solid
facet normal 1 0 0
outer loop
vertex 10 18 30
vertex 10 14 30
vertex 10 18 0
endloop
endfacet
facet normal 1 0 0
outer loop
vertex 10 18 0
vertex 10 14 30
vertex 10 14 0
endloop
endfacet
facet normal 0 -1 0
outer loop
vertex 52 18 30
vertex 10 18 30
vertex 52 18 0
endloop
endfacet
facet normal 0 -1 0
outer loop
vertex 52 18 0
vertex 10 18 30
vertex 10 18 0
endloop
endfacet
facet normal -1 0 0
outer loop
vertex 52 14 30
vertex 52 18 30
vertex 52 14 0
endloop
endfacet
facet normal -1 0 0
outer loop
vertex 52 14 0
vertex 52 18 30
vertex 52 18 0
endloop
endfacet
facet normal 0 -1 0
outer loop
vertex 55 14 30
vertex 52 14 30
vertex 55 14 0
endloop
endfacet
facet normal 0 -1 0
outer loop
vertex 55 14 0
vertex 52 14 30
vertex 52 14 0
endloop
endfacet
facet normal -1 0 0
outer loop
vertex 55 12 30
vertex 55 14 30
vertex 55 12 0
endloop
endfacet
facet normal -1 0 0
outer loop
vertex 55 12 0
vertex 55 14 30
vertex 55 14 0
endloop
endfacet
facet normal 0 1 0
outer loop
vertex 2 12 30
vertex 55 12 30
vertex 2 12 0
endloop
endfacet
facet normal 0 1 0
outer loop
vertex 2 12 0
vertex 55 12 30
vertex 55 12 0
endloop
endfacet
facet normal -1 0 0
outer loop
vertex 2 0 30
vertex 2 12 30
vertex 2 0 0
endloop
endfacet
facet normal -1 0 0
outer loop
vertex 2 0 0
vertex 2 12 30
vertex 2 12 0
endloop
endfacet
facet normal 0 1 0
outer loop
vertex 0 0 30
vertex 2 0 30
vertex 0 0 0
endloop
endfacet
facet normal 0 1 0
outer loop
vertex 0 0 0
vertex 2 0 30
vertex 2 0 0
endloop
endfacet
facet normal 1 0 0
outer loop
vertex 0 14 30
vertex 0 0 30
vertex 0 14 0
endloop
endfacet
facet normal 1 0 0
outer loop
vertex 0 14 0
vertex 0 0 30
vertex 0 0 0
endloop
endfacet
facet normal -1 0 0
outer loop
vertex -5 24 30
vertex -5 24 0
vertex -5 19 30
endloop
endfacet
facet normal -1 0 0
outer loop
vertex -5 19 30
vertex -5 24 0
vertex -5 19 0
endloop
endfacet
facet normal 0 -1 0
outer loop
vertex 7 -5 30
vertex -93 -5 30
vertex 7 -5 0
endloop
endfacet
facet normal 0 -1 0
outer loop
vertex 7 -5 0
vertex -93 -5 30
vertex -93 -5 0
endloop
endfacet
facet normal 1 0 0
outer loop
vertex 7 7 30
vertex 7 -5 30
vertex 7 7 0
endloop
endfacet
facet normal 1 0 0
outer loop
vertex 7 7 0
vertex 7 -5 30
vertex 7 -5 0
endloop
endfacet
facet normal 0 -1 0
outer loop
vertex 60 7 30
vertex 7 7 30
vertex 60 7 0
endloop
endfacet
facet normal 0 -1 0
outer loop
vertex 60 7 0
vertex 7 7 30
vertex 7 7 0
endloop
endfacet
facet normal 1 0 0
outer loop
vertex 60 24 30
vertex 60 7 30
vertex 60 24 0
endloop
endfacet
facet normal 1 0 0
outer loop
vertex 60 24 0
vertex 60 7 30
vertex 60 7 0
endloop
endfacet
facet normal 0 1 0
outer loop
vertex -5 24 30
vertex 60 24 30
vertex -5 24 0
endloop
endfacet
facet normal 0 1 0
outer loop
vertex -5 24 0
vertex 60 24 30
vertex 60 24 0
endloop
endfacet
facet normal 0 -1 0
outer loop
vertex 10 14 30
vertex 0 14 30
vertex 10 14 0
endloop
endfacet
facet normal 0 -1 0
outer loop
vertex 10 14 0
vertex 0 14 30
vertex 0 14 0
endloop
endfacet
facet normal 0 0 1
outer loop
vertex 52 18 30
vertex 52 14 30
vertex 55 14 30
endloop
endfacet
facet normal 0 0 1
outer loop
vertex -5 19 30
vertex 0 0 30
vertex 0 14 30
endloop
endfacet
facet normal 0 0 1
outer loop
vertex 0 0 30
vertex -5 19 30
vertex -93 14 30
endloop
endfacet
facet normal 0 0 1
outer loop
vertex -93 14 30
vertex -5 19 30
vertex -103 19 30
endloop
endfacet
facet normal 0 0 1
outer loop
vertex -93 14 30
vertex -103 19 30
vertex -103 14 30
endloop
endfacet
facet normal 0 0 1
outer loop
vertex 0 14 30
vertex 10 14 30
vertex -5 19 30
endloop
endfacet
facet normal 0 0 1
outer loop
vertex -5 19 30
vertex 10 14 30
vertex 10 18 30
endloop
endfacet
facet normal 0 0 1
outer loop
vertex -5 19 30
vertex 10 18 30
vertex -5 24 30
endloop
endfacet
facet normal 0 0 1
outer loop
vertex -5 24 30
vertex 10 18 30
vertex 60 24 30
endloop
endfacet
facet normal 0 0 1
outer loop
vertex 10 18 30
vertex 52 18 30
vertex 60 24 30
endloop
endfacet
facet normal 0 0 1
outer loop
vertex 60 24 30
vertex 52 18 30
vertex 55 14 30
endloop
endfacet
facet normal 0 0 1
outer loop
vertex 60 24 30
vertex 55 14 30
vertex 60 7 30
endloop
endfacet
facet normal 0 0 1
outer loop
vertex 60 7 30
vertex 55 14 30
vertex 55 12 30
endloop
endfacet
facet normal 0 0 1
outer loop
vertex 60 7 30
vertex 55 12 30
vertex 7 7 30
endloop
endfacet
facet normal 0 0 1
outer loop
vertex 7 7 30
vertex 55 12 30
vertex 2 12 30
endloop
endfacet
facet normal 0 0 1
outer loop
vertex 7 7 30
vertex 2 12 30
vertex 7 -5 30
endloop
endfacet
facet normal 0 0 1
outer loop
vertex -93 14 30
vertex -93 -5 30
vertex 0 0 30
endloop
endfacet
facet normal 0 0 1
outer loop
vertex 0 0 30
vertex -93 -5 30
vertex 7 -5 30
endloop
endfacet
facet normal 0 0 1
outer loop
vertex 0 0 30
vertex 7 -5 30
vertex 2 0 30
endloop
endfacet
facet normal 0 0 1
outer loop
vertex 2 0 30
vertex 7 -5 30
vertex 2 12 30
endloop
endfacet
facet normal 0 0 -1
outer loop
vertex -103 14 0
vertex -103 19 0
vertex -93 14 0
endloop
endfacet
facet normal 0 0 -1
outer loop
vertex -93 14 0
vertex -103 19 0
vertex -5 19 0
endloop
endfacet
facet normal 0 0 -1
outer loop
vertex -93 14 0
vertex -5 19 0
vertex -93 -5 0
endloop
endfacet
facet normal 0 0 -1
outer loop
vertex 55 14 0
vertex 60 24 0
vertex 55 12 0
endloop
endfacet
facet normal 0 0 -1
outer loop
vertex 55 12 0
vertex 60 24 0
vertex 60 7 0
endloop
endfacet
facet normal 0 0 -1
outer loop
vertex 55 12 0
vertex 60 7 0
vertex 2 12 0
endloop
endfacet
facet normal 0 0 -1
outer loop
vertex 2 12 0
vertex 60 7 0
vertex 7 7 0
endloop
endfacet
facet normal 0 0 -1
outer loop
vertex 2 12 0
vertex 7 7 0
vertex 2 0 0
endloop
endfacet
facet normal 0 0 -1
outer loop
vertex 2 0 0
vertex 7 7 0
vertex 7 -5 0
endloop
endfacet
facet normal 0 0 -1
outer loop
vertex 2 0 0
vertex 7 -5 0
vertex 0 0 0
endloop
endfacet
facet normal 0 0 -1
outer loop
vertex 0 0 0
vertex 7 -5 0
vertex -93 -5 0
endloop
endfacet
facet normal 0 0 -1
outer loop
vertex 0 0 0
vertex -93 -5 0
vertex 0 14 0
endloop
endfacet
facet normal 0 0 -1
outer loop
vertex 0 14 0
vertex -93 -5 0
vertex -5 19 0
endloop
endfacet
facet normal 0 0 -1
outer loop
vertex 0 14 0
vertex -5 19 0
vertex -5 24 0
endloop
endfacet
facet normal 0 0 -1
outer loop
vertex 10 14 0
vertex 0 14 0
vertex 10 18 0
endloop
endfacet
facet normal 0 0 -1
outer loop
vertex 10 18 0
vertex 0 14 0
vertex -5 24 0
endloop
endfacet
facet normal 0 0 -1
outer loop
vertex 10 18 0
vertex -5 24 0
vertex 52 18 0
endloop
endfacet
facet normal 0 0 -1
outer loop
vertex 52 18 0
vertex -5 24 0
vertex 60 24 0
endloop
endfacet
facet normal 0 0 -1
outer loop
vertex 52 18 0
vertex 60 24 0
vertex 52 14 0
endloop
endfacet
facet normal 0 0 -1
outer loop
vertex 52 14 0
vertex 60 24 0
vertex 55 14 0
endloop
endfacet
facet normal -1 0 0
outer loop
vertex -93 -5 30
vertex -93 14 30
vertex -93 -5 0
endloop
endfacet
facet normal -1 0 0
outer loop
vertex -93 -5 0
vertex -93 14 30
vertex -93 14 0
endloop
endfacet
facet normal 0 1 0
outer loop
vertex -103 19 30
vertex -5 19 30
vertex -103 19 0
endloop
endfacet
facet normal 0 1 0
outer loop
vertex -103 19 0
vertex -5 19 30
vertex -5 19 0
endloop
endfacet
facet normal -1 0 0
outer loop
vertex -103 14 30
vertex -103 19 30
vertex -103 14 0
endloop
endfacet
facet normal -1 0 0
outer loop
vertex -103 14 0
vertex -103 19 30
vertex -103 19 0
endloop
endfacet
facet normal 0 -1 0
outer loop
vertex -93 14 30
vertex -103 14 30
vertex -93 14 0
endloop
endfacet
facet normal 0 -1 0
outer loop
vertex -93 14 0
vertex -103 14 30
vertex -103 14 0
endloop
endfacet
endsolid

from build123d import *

# Parameters (mm, degrees)
SKETCH_1_W      = 65
SKETCH_1_H      = 5
EXTRUDE_2_DEPTH = 30
SKETCH_4_W      = 10
SKETCH_4_H      = 5
EXTRUDE_4_DEPTH = 30


with BuildPart() as part:
    # 스케치1 → 보스-돌출2 (new body)
    # profile 1 of 2: a face of its own
    with BuildSketch(Plane.XY):
        with Locations((27.5, 21.5)):
            Rectangle(SKETCH_1_W, SKETCH_1_H)
    # profile 2 of 2: a face of its own
    with BuildSketch(Plane.XY):
        Polygon((-5, 19), (-5, -5), (7, -5), (7, 7), (60, 7), (60, 19), align=None)
        Polygon((2, 0), (0, 0), (0, 14), (10, 14), (10, 18), (52, 18), (52, 14), (55, 14), (55, 12), (2, 12), align=None, mode=Mode.SUBTRACT)
    extrude(amount=EXTRUDE_2_DEPTH)

    # 스케치4 → 보스-돌출4 (add)
    with BuildSketch(Plane(origin=(0, 0, 0), x_dir=(-1, 0, 0), z_dir=(0, 0, -1))):
        Polygon((93, 19), (5, 19), (5, -5), (93, -5), (93, 14), align=None)
        with Locations((98, 16.5)):
            Rectangle(SKETCH_4_W, SKETCH_4_H)
    extrude(amount=-EXTRUDE_4_DEPTH)


solid = part.part
